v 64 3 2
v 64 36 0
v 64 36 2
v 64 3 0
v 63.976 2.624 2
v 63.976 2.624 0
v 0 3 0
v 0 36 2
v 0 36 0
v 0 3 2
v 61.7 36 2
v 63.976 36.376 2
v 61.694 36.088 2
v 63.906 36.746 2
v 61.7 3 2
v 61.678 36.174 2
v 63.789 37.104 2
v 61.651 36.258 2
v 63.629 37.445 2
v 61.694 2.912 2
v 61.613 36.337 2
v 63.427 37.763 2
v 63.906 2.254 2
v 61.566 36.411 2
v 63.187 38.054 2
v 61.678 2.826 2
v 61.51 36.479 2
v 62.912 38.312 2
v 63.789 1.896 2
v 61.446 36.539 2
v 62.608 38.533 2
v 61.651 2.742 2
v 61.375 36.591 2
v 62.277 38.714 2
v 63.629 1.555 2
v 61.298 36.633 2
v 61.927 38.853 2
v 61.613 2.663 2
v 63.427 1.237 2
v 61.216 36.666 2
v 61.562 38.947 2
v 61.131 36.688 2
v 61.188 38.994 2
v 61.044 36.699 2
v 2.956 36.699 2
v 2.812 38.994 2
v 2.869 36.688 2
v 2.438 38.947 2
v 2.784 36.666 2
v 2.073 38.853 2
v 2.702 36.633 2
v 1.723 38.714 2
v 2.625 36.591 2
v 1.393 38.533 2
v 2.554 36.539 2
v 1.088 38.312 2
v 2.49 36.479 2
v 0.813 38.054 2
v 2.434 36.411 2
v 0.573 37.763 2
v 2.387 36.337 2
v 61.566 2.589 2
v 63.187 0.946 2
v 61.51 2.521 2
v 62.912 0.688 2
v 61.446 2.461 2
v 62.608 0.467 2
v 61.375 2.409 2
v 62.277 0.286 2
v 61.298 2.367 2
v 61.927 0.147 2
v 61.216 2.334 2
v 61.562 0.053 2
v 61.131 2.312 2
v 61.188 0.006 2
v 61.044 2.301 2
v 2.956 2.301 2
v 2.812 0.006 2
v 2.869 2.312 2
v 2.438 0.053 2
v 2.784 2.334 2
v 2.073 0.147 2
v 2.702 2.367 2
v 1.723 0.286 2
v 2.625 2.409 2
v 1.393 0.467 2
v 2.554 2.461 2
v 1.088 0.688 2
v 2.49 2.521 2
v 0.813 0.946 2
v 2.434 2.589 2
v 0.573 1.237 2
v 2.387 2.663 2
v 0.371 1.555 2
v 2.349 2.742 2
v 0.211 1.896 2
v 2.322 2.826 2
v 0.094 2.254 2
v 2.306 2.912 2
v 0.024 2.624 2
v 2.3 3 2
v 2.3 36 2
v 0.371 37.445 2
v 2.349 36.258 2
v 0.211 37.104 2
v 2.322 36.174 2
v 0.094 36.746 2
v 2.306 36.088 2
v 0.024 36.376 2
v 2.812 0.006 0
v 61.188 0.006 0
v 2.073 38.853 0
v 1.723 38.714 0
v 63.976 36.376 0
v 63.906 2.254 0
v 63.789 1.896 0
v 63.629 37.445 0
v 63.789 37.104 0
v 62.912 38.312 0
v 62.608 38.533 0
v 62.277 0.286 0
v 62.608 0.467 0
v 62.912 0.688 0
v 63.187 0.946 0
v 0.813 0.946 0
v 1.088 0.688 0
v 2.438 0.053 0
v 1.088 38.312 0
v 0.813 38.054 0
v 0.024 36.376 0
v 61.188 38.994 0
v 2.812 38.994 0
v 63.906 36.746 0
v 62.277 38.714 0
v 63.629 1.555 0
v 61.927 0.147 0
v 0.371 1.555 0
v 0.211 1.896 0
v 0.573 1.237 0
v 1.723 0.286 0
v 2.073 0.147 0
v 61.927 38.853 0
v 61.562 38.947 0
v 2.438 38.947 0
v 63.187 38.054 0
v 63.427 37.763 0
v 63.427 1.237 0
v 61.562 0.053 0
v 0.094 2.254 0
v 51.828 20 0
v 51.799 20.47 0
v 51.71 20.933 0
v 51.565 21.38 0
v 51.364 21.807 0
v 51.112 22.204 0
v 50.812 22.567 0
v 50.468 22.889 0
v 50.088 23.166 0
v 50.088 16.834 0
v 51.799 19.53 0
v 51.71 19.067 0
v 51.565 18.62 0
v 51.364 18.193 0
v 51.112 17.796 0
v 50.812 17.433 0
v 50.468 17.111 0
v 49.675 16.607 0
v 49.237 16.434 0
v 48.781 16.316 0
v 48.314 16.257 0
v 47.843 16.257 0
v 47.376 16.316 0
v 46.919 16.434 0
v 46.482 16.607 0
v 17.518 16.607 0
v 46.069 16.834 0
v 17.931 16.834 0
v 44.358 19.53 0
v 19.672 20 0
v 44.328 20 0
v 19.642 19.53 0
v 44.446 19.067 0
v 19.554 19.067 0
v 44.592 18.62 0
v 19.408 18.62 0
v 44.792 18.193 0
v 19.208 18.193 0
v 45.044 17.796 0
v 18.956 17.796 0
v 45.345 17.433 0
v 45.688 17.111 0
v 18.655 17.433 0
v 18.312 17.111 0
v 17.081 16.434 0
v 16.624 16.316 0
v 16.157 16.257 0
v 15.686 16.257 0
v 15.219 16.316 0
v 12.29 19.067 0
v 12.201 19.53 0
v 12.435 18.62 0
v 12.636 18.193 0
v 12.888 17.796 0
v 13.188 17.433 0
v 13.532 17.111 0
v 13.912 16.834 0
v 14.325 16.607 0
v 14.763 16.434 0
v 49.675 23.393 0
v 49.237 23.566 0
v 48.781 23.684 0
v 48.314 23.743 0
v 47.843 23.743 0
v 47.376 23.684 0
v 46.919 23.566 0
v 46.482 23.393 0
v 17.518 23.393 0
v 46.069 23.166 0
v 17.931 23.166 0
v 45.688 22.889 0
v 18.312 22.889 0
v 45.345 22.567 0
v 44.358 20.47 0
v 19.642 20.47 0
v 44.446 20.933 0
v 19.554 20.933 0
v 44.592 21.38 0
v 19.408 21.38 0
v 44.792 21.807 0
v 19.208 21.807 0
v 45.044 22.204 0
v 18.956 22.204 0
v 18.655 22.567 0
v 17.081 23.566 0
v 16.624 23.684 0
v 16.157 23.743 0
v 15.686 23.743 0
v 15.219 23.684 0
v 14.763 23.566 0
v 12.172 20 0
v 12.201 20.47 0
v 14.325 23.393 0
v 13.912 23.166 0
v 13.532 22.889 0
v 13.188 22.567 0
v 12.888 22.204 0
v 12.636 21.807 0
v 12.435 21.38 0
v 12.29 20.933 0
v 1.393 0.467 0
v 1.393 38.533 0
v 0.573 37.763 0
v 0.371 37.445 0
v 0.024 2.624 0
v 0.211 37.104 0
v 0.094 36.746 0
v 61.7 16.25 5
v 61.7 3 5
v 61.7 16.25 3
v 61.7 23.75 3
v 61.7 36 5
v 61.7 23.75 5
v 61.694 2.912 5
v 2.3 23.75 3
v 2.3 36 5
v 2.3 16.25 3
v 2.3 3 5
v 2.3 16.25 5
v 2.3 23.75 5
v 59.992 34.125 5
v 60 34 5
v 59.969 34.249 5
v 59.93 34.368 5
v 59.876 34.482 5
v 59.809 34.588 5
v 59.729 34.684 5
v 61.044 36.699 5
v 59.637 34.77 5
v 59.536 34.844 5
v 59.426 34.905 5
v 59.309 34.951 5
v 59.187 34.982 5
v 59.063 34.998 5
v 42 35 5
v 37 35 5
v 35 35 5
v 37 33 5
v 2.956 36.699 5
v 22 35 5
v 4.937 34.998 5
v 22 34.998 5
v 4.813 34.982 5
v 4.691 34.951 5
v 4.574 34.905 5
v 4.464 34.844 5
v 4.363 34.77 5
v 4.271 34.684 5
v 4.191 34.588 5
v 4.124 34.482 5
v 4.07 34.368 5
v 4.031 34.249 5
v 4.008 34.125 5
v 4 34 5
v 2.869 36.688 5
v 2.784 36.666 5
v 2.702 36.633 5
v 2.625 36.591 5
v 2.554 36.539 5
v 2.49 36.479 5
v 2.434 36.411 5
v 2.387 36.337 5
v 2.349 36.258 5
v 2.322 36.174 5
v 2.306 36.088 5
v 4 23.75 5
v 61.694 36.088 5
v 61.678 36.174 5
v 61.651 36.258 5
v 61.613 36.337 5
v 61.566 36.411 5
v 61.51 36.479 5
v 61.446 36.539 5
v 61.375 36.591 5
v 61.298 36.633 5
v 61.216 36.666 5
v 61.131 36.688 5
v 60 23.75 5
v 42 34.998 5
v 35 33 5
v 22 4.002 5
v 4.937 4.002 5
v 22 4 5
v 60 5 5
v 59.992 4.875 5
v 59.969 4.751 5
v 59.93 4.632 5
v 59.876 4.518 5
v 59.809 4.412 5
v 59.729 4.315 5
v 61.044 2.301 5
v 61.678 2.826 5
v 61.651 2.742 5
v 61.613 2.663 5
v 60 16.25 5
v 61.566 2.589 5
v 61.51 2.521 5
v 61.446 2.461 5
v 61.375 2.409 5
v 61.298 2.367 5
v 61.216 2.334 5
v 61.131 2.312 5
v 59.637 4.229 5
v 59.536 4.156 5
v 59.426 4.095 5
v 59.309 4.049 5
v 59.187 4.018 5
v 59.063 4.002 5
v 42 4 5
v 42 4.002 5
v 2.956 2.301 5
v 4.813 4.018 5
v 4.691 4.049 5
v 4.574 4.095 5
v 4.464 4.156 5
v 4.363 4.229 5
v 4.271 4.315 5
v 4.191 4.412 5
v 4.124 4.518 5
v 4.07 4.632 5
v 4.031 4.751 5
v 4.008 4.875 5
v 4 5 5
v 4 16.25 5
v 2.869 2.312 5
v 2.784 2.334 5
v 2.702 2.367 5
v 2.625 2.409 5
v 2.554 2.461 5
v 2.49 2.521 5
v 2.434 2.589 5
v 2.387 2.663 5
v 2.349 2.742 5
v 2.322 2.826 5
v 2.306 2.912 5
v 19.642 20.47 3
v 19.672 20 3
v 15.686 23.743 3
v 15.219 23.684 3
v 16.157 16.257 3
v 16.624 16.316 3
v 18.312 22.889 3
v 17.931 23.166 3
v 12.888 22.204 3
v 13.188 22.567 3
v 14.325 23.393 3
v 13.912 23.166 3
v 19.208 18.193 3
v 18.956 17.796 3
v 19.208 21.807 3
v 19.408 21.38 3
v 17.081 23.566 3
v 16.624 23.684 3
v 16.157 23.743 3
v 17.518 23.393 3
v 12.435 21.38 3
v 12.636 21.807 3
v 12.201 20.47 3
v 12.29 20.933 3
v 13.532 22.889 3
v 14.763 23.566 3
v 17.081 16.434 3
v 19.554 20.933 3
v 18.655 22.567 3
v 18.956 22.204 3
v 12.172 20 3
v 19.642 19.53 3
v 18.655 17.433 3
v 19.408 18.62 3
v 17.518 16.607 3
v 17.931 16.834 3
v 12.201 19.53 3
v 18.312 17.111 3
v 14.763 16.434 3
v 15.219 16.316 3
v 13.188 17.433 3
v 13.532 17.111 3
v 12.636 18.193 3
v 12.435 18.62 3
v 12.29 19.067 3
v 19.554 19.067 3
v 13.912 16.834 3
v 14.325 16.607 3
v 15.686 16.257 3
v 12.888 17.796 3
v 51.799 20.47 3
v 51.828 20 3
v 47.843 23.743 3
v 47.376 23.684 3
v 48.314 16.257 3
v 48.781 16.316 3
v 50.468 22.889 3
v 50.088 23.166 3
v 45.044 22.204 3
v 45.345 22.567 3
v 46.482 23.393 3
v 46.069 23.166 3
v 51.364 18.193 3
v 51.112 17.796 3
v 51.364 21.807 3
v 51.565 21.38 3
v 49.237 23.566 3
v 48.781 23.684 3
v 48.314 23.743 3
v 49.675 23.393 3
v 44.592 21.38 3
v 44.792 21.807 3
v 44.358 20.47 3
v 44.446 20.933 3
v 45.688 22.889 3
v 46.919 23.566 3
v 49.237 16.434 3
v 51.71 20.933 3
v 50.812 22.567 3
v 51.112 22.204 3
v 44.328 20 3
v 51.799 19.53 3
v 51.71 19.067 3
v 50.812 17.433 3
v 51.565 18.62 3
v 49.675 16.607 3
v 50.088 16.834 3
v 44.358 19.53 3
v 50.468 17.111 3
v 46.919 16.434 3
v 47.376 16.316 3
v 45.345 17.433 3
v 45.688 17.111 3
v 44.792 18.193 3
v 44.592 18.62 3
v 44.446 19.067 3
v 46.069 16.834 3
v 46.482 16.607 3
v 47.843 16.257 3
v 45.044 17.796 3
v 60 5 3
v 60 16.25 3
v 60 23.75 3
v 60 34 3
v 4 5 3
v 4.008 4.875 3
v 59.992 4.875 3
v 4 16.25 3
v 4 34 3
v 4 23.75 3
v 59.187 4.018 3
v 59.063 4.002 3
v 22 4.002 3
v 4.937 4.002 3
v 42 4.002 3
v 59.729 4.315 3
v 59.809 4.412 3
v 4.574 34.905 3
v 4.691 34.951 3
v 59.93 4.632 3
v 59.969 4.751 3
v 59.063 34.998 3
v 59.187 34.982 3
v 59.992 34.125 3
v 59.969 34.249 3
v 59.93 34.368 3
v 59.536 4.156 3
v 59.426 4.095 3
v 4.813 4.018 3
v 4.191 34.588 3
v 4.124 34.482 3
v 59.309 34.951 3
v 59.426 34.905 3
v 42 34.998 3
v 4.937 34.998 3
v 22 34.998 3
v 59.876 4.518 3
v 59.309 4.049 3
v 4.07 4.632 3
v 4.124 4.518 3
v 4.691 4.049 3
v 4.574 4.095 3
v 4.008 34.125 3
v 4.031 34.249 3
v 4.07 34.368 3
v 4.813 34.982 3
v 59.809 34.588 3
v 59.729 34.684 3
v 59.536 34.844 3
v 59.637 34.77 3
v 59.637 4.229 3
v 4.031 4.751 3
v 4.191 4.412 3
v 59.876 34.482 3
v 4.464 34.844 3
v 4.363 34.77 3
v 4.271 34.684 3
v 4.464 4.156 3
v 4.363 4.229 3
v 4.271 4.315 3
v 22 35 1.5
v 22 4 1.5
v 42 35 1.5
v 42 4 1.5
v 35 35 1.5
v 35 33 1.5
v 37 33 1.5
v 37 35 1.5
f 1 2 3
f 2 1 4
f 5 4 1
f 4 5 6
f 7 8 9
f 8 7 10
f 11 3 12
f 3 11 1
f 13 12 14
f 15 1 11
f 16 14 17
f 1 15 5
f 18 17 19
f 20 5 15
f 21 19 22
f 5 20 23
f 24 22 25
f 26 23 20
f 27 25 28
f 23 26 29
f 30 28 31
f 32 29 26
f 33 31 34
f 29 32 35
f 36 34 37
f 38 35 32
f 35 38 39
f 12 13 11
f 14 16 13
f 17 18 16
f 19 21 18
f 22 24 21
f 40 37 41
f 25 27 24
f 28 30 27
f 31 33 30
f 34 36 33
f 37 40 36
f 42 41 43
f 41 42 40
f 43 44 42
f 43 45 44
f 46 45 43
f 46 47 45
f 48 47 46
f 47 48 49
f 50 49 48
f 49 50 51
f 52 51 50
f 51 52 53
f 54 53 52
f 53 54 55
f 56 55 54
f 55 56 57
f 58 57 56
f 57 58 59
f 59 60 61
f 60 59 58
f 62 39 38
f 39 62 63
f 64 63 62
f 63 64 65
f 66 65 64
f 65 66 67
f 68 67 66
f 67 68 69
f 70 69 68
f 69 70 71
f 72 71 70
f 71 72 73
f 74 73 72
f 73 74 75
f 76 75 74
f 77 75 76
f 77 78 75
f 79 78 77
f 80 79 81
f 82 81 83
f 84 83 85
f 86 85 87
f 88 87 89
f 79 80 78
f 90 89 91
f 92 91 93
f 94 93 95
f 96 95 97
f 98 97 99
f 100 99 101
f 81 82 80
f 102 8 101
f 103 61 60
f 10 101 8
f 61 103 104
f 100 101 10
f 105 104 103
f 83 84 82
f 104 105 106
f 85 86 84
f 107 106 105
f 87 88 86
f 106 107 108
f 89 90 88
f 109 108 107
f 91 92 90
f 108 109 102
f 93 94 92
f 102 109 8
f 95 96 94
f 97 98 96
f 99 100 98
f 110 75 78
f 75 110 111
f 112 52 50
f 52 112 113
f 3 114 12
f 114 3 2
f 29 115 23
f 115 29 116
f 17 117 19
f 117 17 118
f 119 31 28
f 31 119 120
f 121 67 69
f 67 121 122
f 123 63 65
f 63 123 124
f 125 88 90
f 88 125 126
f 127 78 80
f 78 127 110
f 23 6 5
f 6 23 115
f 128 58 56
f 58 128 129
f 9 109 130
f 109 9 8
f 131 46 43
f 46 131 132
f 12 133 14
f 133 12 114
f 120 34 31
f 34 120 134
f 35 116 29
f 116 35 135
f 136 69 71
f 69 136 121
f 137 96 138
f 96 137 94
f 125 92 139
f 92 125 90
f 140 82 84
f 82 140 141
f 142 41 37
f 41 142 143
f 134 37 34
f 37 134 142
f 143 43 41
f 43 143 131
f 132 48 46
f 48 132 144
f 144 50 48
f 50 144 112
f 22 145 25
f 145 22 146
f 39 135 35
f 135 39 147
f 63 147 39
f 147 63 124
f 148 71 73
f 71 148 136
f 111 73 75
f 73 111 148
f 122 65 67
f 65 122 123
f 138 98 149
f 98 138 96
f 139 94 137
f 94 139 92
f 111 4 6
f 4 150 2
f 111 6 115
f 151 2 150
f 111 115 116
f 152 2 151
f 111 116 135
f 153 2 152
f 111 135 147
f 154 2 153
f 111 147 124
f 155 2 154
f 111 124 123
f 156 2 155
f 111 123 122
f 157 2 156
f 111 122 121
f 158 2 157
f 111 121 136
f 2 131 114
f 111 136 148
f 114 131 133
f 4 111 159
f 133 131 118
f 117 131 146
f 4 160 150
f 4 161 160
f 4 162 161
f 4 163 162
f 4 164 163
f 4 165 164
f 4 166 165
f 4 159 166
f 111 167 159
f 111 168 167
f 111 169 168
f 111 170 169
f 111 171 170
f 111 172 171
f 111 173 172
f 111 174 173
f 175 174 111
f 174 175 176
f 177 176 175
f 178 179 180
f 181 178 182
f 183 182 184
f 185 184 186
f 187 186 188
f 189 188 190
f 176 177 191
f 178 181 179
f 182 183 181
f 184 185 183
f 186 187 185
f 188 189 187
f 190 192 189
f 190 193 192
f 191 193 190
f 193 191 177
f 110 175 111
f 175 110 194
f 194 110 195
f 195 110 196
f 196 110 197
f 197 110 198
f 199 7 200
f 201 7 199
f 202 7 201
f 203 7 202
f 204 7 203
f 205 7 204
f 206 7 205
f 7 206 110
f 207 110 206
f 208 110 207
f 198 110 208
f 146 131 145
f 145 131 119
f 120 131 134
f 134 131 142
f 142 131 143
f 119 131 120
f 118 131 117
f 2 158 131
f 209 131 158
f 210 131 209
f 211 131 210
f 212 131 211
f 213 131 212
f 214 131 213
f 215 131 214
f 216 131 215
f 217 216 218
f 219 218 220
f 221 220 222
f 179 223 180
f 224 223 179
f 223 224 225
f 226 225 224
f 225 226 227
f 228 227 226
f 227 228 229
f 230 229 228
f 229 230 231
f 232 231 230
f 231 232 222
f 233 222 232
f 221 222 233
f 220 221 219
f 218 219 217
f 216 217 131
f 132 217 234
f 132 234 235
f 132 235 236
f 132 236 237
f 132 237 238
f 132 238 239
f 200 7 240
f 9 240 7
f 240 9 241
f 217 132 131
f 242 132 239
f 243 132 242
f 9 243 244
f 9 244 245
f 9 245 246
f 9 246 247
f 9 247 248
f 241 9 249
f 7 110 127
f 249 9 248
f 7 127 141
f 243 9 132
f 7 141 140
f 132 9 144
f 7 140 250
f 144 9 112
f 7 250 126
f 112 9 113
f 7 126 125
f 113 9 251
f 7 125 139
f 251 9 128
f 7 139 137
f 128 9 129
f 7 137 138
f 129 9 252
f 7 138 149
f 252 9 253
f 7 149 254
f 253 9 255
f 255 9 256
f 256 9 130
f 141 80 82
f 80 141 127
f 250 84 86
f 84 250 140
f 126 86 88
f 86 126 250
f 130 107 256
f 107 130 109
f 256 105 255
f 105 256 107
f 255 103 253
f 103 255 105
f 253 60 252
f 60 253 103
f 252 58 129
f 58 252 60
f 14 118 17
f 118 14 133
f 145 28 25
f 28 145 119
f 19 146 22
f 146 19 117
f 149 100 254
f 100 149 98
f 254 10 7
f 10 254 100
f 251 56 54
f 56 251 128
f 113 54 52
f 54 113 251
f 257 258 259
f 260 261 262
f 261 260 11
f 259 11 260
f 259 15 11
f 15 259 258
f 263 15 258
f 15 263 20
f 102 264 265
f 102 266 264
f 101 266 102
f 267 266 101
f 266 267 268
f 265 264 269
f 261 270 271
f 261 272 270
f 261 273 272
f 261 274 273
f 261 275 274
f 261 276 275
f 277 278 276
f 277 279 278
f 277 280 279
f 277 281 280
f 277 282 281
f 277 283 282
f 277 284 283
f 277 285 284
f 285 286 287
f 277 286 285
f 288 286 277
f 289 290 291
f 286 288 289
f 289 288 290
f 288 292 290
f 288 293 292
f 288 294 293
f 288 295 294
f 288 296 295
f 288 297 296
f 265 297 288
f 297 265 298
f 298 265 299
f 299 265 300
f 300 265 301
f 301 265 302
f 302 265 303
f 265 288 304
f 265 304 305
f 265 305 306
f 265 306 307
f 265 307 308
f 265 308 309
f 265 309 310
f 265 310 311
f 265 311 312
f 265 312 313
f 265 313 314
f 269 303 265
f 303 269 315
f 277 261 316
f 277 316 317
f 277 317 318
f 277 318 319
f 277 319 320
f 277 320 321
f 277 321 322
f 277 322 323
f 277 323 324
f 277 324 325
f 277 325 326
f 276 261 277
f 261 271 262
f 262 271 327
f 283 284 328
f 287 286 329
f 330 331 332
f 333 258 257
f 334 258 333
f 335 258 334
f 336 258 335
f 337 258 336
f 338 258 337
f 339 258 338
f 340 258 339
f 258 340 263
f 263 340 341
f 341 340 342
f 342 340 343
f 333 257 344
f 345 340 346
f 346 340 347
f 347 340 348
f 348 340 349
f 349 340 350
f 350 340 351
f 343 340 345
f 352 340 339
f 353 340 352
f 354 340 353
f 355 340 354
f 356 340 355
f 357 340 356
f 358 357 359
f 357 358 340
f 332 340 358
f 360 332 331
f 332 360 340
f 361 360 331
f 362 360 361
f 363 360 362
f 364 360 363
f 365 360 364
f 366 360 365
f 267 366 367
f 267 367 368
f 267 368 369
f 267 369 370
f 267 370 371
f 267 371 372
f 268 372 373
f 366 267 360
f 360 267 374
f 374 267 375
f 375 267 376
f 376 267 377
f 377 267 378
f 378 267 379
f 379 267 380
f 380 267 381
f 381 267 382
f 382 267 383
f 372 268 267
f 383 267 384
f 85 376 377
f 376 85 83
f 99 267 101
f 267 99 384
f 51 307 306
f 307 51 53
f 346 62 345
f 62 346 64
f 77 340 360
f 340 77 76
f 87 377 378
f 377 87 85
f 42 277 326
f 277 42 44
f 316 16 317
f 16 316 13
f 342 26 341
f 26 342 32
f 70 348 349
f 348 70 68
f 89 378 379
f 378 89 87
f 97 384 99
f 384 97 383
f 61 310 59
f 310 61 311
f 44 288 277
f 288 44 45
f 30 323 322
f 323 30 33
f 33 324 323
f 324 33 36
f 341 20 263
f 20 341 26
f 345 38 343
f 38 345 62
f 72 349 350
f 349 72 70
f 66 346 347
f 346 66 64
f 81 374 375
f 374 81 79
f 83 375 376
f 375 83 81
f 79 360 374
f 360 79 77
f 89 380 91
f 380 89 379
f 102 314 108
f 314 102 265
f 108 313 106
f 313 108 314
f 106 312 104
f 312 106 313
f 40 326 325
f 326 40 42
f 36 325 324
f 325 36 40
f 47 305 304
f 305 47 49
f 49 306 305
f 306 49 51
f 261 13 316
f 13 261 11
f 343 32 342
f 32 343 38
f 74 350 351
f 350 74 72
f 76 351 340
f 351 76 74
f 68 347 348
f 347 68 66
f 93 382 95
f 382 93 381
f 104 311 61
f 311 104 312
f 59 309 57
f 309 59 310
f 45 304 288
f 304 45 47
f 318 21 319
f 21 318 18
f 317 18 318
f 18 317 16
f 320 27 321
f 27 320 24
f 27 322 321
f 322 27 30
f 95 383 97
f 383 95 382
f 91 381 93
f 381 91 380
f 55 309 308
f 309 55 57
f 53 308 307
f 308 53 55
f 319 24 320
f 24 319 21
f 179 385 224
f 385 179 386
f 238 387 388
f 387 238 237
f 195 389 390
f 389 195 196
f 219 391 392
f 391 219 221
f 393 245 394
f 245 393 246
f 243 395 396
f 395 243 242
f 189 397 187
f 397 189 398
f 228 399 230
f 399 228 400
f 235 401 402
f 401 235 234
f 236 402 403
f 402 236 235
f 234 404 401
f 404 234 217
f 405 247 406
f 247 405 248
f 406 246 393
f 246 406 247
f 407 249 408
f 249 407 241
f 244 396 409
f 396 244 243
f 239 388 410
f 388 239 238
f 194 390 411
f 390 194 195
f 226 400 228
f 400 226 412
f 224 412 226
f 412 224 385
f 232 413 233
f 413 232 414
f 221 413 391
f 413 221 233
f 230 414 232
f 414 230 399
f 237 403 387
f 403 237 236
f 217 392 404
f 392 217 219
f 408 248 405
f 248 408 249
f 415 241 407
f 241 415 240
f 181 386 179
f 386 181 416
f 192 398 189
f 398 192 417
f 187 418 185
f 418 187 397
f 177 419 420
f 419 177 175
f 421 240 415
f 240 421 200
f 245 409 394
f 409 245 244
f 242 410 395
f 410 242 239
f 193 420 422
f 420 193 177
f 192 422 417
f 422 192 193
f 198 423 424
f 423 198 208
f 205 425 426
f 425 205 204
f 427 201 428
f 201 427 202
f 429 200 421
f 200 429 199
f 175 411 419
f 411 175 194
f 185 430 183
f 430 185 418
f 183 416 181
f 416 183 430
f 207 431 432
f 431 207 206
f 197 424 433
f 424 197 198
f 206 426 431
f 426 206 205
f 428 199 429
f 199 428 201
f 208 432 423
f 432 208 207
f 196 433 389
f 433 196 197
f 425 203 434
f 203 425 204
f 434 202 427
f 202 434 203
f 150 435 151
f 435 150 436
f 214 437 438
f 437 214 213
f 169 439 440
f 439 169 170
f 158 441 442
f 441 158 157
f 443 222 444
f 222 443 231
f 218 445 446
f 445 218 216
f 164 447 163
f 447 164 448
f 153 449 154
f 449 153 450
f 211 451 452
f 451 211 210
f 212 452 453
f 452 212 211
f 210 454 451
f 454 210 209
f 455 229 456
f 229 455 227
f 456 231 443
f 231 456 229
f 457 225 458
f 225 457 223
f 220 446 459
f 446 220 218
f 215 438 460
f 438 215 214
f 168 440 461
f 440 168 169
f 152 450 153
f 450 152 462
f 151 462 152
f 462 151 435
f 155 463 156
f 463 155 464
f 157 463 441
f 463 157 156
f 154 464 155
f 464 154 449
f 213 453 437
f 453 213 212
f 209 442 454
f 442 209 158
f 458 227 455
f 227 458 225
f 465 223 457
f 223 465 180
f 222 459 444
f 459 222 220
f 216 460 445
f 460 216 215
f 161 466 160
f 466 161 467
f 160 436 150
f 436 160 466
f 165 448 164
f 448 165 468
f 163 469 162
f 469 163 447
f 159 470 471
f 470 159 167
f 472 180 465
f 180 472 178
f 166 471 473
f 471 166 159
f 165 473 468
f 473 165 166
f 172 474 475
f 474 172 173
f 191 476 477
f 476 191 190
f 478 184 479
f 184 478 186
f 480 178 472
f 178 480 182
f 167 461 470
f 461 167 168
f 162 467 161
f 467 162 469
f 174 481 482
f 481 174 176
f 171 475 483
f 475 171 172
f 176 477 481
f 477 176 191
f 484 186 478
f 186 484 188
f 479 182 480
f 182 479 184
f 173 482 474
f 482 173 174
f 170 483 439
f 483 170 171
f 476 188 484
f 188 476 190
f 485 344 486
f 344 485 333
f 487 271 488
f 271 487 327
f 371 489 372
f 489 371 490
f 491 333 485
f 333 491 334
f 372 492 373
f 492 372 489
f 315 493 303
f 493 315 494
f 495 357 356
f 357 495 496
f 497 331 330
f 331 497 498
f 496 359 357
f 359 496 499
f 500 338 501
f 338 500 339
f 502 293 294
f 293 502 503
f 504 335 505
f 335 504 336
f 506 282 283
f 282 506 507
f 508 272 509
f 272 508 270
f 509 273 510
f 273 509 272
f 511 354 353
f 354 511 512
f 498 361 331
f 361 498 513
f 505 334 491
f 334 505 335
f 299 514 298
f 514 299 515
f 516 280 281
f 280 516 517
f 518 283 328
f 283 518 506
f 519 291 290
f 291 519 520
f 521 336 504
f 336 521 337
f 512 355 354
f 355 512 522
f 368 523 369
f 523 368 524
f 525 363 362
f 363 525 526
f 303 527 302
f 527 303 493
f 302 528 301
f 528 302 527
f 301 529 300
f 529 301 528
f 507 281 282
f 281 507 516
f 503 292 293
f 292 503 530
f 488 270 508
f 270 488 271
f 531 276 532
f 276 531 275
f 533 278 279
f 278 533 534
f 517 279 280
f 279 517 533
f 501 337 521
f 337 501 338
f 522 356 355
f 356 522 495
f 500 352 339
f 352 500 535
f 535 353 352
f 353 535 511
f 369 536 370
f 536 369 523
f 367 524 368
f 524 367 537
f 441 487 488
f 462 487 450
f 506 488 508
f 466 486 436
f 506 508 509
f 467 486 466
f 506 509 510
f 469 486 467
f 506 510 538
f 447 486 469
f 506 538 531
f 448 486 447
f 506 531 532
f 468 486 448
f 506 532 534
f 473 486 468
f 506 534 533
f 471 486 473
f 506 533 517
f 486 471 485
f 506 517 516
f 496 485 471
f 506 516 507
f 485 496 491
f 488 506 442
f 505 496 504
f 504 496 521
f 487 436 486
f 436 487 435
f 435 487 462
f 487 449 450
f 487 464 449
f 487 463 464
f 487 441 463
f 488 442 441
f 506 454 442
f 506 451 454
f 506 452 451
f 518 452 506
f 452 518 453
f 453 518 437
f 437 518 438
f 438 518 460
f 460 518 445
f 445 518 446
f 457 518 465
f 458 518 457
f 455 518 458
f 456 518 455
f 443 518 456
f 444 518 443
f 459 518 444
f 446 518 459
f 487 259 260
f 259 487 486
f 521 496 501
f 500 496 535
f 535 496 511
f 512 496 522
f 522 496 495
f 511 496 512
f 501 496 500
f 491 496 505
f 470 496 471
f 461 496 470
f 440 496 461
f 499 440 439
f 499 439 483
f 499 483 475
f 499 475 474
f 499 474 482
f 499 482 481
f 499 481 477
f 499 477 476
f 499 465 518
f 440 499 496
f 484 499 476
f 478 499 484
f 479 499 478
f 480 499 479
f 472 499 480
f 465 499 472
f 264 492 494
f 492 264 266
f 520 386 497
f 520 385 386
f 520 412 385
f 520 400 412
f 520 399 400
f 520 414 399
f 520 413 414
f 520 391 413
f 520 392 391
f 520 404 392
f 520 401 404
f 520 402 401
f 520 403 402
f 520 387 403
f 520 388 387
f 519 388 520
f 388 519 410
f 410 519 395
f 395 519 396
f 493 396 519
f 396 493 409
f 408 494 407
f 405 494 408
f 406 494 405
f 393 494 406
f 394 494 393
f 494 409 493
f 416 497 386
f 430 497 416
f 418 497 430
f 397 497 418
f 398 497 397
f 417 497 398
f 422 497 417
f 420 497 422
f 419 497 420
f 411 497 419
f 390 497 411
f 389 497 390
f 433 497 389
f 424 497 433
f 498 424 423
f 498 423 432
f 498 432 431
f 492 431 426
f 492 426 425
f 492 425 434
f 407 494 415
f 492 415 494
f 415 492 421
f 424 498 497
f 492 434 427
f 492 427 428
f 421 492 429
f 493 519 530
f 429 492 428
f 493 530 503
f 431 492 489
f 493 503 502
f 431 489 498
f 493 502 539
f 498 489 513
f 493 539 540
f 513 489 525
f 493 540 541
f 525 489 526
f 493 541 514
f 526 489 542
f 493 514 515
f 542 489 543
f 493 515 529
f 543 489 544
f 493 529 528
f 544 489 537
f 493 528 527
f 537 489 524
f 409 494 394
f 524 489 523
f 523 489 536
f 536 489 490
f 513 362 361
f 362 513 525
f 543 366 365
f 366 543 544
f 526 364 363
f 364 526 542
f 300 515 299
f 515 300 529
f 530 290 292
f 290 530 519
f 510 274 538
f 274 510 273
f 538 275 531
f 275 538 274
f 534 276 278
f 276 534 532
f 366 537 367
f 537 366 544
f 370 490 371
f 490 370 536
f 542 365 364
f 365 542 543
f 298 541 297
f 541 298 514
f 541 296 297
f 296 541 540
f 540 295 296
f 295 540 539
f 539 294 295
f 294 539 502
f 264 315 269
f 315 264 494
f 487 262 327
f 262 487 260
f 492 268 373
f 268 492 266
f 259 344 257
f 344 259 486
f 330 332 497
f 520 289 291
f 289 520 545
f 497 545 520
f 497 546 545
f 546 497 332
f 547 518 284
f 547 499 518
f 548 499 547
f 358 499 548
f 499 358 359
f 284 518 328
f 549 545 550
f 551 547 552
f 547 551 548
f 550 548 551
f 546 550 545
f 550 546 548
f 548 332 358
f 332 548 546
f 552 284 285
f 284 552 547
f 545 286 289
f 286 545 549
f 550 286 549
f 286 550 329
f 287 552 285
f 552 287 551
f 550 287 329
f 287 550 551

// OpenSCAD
// Simple Lid for the Iridium Beacon Cover with Radio Board

$fn=50; // fragments
wall = 2; // cover wall thickness
thickness = 2; // lid end thickness
internal_width = 60; // internal width (X) of the cover
internal_depth = 35; // internal depth (Y) of the cover
gap = 0.3; // clearance gap (per side)
insert_height = 3; // extra height for the lid insert
internal_corner_radius = 1.0; // radius of the internal corner cylinder

sma_r = 3.75; // radius of the hole for the sma connector
sma_x_sep = 1.266 * 25.4; // X separation of the two SMA connectors
sma_y_offset = 0.5; // y offset of the holes for the sma connectors w.r.t. the Y center of the void
sma_wall_thickness = 3.0; // wall thickness around the SMA connectors

relay_recess_width = 20.0; // width of the recess for the relay terminals
relay_wall_thickness = 1.5; // wall thickness across the relay recess

support_x_offset = 4.0; // x offset of the support w.r.t. the X center of the void
support_width = 2.0; // x width of the support
support_depth = 2.0; // y depth of the support

if (gap > internal_corner_radius) echo("Error! Gap cannot be greater than the internal corner radius!");

width = internal_width + (2 * wall); // lid external width (X)
depth = internal_depth + (2 * wall); // lid external depth (Y)

total_height = wall + insert_height; // total height of the lid

sma_1_x = (width / 2) - (sma_x_sep / 2); // x position of sma connector 1
sma_2_x = (width / 2) + (sma_x_sep / 2); // x position of sma connector 2
sma_y = (depth / 2) + sma_y_offset; // y position of the sma connectors

external_corner_radius = internal_corner_radius + wall; // external corner radius

module outer()
{
    translate([external_corner_radius, external_corner_radius, 0])
        minkowski() {
            cube([(width - (2 * external_corner_radius)), (depth - (2 * external_corner_radius)), (thickness / 2)]);
            cylinder(h=(thickness / 2), r=external_corner_radius);
        }
}

module inner()
// Thicker than required to avoid zero thickness joints
{
    translate([external_corner_radius, external_corner_radius, 0])
        minkowski() {
            cube([(width - (2 * external_corner_radius)), (depth - (2 * external_corner_radius)), (total_height / 2)]);
            cylinder(h=(total_height / 2), r=(internal_corner_radius - gap));
        }
}

module recess()
// Thicker than required to avoid zero thickness joints
{
    translate([(internal_corner_radius + wall + wall), (internal_corner_radius + wall + wall), sma_wall_thickness])
        minkowski() {
            cube([(width - (2 * (wall + wall + internal_corner_radius))), (depth - (2 * (wall + wall + internal_corner_radius))), (total_height / 2)]);
            cylinder(h=(total_height / 2), r=internal_corner_radius);
        }
}

module lid()
{
    union() {
        outer();
        inner();
    }
}

module sma_1()
// Cylinder is taller than required to avoid zero thickness skins
{
    translate([sma_1_x, sma_y, -1]) {
        cylinder(h=(total_height + 2),r=sma_r);
    }
}

module sma_2()
// Cylinder is taller than required to avoid zero thickness skins
{
    translate([sma_2_x, sma_y, -1]) {
        cylinder(h=(total_height + 2),r=sma_r);
    }
}

module pcb_slot()
// Cube is taller amd wider than required to avoid zero thickness skins
{
    translate([0, (sma_y - sma_r), sma_wall_thickness]) {
        cube([width, (sma_r * 2), total_height]);
    }
}

module relay_recess()
// Recess is higher than required to avoid zero thickness skins
{
    translate([((width / 2) - (relay_recess_width / 2)), (2 * wall), relay_wall_thickness]) {
        cube([relay_recess_width, (depth - (4 * wall)), total_height]);
    }
}

module support()
{
    translate([((width / 2) + support_x_offset - (support_width / 2)),(depth - ((2 * wall) + support_depth)), 0]) {
        cube([support_width, support_depth, total_height]);
    }
}

module finished_lid()
{
    union() {
        difference() {
            lid();
            sma_1();
            sma_2();
            recess();
            pcb_slot();
            relay_recess();
        }
        support();
    }
}

finished_lid();
